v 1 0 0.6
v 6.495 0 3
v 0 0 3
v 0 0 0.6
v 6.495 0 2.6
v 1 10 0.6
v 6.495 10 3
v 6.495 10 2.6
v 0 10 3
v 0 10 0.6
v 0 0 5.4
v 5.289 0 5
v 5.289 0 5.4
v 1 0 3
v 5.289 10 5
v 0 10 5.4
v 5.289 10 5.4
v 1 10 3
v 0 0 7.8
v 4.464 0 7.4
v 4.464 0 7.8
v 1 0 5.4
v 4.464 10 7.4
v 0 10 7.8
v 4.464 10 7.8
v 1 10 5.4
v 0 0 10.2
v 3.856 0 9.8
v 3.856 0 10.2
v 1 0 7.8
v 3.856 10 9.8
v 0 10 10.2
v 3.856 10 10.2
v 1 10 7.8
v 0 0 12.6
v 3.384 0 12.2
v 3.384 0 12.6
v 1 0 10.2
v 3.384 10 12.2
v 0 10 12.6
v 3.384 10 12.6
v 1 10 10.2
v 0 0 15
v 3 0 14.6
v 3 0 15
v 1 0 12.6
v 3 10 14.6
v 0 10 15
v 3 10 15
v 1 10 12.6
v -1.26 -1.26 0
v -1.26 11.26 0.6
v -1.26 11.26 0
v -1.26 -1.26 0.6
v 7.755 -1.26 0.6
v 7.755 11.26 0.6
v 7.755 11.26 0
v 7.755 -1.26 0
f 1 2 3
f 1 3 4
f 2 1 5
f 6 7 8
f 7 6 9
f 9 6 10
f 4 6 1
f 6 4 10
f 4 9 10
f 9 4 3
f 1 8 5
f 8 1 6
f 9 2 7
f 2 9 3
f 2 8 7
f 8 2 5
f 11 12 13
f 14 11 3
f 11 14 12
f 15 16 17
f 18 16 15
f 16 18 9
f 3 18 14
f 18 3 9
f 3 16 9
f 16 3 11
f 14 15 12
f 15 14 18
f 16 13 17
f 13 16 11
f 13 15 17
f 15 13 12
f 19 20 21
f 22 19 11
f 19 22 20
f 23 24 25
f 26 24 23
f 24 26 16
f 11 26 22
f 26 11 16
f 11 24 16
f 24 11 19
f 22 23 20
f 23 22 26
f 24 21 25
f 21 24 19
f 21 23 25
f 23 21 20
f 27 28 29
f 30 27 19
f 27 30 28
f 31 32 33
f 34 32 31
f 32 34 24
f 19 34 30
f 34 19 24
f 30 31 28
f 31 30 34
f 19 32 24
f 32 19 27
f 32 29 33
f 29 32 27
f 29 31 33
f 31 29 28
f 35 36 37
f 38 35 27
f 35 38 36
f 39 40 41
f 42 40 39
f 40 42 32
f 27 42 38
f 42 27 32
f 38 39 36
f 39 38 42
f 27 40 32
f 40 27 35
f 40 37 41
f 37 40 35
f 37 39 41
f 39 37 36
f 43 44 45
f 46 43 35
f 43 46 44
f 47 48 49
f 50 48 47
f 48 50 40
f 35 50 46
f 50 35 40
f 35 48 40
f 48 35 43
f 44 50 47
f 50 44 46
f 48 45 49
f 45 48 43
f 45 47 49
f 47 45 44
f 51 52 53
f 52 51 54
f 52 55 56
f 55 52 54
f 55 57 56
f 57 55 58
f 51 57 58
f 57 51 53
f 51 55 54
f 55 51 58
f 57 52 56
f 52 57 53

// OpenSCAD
include <../3d-printer-testing-suite.scad>

/* [Hidden] */
color_scheme = ["lightblue"];
test_type = "overhang";
